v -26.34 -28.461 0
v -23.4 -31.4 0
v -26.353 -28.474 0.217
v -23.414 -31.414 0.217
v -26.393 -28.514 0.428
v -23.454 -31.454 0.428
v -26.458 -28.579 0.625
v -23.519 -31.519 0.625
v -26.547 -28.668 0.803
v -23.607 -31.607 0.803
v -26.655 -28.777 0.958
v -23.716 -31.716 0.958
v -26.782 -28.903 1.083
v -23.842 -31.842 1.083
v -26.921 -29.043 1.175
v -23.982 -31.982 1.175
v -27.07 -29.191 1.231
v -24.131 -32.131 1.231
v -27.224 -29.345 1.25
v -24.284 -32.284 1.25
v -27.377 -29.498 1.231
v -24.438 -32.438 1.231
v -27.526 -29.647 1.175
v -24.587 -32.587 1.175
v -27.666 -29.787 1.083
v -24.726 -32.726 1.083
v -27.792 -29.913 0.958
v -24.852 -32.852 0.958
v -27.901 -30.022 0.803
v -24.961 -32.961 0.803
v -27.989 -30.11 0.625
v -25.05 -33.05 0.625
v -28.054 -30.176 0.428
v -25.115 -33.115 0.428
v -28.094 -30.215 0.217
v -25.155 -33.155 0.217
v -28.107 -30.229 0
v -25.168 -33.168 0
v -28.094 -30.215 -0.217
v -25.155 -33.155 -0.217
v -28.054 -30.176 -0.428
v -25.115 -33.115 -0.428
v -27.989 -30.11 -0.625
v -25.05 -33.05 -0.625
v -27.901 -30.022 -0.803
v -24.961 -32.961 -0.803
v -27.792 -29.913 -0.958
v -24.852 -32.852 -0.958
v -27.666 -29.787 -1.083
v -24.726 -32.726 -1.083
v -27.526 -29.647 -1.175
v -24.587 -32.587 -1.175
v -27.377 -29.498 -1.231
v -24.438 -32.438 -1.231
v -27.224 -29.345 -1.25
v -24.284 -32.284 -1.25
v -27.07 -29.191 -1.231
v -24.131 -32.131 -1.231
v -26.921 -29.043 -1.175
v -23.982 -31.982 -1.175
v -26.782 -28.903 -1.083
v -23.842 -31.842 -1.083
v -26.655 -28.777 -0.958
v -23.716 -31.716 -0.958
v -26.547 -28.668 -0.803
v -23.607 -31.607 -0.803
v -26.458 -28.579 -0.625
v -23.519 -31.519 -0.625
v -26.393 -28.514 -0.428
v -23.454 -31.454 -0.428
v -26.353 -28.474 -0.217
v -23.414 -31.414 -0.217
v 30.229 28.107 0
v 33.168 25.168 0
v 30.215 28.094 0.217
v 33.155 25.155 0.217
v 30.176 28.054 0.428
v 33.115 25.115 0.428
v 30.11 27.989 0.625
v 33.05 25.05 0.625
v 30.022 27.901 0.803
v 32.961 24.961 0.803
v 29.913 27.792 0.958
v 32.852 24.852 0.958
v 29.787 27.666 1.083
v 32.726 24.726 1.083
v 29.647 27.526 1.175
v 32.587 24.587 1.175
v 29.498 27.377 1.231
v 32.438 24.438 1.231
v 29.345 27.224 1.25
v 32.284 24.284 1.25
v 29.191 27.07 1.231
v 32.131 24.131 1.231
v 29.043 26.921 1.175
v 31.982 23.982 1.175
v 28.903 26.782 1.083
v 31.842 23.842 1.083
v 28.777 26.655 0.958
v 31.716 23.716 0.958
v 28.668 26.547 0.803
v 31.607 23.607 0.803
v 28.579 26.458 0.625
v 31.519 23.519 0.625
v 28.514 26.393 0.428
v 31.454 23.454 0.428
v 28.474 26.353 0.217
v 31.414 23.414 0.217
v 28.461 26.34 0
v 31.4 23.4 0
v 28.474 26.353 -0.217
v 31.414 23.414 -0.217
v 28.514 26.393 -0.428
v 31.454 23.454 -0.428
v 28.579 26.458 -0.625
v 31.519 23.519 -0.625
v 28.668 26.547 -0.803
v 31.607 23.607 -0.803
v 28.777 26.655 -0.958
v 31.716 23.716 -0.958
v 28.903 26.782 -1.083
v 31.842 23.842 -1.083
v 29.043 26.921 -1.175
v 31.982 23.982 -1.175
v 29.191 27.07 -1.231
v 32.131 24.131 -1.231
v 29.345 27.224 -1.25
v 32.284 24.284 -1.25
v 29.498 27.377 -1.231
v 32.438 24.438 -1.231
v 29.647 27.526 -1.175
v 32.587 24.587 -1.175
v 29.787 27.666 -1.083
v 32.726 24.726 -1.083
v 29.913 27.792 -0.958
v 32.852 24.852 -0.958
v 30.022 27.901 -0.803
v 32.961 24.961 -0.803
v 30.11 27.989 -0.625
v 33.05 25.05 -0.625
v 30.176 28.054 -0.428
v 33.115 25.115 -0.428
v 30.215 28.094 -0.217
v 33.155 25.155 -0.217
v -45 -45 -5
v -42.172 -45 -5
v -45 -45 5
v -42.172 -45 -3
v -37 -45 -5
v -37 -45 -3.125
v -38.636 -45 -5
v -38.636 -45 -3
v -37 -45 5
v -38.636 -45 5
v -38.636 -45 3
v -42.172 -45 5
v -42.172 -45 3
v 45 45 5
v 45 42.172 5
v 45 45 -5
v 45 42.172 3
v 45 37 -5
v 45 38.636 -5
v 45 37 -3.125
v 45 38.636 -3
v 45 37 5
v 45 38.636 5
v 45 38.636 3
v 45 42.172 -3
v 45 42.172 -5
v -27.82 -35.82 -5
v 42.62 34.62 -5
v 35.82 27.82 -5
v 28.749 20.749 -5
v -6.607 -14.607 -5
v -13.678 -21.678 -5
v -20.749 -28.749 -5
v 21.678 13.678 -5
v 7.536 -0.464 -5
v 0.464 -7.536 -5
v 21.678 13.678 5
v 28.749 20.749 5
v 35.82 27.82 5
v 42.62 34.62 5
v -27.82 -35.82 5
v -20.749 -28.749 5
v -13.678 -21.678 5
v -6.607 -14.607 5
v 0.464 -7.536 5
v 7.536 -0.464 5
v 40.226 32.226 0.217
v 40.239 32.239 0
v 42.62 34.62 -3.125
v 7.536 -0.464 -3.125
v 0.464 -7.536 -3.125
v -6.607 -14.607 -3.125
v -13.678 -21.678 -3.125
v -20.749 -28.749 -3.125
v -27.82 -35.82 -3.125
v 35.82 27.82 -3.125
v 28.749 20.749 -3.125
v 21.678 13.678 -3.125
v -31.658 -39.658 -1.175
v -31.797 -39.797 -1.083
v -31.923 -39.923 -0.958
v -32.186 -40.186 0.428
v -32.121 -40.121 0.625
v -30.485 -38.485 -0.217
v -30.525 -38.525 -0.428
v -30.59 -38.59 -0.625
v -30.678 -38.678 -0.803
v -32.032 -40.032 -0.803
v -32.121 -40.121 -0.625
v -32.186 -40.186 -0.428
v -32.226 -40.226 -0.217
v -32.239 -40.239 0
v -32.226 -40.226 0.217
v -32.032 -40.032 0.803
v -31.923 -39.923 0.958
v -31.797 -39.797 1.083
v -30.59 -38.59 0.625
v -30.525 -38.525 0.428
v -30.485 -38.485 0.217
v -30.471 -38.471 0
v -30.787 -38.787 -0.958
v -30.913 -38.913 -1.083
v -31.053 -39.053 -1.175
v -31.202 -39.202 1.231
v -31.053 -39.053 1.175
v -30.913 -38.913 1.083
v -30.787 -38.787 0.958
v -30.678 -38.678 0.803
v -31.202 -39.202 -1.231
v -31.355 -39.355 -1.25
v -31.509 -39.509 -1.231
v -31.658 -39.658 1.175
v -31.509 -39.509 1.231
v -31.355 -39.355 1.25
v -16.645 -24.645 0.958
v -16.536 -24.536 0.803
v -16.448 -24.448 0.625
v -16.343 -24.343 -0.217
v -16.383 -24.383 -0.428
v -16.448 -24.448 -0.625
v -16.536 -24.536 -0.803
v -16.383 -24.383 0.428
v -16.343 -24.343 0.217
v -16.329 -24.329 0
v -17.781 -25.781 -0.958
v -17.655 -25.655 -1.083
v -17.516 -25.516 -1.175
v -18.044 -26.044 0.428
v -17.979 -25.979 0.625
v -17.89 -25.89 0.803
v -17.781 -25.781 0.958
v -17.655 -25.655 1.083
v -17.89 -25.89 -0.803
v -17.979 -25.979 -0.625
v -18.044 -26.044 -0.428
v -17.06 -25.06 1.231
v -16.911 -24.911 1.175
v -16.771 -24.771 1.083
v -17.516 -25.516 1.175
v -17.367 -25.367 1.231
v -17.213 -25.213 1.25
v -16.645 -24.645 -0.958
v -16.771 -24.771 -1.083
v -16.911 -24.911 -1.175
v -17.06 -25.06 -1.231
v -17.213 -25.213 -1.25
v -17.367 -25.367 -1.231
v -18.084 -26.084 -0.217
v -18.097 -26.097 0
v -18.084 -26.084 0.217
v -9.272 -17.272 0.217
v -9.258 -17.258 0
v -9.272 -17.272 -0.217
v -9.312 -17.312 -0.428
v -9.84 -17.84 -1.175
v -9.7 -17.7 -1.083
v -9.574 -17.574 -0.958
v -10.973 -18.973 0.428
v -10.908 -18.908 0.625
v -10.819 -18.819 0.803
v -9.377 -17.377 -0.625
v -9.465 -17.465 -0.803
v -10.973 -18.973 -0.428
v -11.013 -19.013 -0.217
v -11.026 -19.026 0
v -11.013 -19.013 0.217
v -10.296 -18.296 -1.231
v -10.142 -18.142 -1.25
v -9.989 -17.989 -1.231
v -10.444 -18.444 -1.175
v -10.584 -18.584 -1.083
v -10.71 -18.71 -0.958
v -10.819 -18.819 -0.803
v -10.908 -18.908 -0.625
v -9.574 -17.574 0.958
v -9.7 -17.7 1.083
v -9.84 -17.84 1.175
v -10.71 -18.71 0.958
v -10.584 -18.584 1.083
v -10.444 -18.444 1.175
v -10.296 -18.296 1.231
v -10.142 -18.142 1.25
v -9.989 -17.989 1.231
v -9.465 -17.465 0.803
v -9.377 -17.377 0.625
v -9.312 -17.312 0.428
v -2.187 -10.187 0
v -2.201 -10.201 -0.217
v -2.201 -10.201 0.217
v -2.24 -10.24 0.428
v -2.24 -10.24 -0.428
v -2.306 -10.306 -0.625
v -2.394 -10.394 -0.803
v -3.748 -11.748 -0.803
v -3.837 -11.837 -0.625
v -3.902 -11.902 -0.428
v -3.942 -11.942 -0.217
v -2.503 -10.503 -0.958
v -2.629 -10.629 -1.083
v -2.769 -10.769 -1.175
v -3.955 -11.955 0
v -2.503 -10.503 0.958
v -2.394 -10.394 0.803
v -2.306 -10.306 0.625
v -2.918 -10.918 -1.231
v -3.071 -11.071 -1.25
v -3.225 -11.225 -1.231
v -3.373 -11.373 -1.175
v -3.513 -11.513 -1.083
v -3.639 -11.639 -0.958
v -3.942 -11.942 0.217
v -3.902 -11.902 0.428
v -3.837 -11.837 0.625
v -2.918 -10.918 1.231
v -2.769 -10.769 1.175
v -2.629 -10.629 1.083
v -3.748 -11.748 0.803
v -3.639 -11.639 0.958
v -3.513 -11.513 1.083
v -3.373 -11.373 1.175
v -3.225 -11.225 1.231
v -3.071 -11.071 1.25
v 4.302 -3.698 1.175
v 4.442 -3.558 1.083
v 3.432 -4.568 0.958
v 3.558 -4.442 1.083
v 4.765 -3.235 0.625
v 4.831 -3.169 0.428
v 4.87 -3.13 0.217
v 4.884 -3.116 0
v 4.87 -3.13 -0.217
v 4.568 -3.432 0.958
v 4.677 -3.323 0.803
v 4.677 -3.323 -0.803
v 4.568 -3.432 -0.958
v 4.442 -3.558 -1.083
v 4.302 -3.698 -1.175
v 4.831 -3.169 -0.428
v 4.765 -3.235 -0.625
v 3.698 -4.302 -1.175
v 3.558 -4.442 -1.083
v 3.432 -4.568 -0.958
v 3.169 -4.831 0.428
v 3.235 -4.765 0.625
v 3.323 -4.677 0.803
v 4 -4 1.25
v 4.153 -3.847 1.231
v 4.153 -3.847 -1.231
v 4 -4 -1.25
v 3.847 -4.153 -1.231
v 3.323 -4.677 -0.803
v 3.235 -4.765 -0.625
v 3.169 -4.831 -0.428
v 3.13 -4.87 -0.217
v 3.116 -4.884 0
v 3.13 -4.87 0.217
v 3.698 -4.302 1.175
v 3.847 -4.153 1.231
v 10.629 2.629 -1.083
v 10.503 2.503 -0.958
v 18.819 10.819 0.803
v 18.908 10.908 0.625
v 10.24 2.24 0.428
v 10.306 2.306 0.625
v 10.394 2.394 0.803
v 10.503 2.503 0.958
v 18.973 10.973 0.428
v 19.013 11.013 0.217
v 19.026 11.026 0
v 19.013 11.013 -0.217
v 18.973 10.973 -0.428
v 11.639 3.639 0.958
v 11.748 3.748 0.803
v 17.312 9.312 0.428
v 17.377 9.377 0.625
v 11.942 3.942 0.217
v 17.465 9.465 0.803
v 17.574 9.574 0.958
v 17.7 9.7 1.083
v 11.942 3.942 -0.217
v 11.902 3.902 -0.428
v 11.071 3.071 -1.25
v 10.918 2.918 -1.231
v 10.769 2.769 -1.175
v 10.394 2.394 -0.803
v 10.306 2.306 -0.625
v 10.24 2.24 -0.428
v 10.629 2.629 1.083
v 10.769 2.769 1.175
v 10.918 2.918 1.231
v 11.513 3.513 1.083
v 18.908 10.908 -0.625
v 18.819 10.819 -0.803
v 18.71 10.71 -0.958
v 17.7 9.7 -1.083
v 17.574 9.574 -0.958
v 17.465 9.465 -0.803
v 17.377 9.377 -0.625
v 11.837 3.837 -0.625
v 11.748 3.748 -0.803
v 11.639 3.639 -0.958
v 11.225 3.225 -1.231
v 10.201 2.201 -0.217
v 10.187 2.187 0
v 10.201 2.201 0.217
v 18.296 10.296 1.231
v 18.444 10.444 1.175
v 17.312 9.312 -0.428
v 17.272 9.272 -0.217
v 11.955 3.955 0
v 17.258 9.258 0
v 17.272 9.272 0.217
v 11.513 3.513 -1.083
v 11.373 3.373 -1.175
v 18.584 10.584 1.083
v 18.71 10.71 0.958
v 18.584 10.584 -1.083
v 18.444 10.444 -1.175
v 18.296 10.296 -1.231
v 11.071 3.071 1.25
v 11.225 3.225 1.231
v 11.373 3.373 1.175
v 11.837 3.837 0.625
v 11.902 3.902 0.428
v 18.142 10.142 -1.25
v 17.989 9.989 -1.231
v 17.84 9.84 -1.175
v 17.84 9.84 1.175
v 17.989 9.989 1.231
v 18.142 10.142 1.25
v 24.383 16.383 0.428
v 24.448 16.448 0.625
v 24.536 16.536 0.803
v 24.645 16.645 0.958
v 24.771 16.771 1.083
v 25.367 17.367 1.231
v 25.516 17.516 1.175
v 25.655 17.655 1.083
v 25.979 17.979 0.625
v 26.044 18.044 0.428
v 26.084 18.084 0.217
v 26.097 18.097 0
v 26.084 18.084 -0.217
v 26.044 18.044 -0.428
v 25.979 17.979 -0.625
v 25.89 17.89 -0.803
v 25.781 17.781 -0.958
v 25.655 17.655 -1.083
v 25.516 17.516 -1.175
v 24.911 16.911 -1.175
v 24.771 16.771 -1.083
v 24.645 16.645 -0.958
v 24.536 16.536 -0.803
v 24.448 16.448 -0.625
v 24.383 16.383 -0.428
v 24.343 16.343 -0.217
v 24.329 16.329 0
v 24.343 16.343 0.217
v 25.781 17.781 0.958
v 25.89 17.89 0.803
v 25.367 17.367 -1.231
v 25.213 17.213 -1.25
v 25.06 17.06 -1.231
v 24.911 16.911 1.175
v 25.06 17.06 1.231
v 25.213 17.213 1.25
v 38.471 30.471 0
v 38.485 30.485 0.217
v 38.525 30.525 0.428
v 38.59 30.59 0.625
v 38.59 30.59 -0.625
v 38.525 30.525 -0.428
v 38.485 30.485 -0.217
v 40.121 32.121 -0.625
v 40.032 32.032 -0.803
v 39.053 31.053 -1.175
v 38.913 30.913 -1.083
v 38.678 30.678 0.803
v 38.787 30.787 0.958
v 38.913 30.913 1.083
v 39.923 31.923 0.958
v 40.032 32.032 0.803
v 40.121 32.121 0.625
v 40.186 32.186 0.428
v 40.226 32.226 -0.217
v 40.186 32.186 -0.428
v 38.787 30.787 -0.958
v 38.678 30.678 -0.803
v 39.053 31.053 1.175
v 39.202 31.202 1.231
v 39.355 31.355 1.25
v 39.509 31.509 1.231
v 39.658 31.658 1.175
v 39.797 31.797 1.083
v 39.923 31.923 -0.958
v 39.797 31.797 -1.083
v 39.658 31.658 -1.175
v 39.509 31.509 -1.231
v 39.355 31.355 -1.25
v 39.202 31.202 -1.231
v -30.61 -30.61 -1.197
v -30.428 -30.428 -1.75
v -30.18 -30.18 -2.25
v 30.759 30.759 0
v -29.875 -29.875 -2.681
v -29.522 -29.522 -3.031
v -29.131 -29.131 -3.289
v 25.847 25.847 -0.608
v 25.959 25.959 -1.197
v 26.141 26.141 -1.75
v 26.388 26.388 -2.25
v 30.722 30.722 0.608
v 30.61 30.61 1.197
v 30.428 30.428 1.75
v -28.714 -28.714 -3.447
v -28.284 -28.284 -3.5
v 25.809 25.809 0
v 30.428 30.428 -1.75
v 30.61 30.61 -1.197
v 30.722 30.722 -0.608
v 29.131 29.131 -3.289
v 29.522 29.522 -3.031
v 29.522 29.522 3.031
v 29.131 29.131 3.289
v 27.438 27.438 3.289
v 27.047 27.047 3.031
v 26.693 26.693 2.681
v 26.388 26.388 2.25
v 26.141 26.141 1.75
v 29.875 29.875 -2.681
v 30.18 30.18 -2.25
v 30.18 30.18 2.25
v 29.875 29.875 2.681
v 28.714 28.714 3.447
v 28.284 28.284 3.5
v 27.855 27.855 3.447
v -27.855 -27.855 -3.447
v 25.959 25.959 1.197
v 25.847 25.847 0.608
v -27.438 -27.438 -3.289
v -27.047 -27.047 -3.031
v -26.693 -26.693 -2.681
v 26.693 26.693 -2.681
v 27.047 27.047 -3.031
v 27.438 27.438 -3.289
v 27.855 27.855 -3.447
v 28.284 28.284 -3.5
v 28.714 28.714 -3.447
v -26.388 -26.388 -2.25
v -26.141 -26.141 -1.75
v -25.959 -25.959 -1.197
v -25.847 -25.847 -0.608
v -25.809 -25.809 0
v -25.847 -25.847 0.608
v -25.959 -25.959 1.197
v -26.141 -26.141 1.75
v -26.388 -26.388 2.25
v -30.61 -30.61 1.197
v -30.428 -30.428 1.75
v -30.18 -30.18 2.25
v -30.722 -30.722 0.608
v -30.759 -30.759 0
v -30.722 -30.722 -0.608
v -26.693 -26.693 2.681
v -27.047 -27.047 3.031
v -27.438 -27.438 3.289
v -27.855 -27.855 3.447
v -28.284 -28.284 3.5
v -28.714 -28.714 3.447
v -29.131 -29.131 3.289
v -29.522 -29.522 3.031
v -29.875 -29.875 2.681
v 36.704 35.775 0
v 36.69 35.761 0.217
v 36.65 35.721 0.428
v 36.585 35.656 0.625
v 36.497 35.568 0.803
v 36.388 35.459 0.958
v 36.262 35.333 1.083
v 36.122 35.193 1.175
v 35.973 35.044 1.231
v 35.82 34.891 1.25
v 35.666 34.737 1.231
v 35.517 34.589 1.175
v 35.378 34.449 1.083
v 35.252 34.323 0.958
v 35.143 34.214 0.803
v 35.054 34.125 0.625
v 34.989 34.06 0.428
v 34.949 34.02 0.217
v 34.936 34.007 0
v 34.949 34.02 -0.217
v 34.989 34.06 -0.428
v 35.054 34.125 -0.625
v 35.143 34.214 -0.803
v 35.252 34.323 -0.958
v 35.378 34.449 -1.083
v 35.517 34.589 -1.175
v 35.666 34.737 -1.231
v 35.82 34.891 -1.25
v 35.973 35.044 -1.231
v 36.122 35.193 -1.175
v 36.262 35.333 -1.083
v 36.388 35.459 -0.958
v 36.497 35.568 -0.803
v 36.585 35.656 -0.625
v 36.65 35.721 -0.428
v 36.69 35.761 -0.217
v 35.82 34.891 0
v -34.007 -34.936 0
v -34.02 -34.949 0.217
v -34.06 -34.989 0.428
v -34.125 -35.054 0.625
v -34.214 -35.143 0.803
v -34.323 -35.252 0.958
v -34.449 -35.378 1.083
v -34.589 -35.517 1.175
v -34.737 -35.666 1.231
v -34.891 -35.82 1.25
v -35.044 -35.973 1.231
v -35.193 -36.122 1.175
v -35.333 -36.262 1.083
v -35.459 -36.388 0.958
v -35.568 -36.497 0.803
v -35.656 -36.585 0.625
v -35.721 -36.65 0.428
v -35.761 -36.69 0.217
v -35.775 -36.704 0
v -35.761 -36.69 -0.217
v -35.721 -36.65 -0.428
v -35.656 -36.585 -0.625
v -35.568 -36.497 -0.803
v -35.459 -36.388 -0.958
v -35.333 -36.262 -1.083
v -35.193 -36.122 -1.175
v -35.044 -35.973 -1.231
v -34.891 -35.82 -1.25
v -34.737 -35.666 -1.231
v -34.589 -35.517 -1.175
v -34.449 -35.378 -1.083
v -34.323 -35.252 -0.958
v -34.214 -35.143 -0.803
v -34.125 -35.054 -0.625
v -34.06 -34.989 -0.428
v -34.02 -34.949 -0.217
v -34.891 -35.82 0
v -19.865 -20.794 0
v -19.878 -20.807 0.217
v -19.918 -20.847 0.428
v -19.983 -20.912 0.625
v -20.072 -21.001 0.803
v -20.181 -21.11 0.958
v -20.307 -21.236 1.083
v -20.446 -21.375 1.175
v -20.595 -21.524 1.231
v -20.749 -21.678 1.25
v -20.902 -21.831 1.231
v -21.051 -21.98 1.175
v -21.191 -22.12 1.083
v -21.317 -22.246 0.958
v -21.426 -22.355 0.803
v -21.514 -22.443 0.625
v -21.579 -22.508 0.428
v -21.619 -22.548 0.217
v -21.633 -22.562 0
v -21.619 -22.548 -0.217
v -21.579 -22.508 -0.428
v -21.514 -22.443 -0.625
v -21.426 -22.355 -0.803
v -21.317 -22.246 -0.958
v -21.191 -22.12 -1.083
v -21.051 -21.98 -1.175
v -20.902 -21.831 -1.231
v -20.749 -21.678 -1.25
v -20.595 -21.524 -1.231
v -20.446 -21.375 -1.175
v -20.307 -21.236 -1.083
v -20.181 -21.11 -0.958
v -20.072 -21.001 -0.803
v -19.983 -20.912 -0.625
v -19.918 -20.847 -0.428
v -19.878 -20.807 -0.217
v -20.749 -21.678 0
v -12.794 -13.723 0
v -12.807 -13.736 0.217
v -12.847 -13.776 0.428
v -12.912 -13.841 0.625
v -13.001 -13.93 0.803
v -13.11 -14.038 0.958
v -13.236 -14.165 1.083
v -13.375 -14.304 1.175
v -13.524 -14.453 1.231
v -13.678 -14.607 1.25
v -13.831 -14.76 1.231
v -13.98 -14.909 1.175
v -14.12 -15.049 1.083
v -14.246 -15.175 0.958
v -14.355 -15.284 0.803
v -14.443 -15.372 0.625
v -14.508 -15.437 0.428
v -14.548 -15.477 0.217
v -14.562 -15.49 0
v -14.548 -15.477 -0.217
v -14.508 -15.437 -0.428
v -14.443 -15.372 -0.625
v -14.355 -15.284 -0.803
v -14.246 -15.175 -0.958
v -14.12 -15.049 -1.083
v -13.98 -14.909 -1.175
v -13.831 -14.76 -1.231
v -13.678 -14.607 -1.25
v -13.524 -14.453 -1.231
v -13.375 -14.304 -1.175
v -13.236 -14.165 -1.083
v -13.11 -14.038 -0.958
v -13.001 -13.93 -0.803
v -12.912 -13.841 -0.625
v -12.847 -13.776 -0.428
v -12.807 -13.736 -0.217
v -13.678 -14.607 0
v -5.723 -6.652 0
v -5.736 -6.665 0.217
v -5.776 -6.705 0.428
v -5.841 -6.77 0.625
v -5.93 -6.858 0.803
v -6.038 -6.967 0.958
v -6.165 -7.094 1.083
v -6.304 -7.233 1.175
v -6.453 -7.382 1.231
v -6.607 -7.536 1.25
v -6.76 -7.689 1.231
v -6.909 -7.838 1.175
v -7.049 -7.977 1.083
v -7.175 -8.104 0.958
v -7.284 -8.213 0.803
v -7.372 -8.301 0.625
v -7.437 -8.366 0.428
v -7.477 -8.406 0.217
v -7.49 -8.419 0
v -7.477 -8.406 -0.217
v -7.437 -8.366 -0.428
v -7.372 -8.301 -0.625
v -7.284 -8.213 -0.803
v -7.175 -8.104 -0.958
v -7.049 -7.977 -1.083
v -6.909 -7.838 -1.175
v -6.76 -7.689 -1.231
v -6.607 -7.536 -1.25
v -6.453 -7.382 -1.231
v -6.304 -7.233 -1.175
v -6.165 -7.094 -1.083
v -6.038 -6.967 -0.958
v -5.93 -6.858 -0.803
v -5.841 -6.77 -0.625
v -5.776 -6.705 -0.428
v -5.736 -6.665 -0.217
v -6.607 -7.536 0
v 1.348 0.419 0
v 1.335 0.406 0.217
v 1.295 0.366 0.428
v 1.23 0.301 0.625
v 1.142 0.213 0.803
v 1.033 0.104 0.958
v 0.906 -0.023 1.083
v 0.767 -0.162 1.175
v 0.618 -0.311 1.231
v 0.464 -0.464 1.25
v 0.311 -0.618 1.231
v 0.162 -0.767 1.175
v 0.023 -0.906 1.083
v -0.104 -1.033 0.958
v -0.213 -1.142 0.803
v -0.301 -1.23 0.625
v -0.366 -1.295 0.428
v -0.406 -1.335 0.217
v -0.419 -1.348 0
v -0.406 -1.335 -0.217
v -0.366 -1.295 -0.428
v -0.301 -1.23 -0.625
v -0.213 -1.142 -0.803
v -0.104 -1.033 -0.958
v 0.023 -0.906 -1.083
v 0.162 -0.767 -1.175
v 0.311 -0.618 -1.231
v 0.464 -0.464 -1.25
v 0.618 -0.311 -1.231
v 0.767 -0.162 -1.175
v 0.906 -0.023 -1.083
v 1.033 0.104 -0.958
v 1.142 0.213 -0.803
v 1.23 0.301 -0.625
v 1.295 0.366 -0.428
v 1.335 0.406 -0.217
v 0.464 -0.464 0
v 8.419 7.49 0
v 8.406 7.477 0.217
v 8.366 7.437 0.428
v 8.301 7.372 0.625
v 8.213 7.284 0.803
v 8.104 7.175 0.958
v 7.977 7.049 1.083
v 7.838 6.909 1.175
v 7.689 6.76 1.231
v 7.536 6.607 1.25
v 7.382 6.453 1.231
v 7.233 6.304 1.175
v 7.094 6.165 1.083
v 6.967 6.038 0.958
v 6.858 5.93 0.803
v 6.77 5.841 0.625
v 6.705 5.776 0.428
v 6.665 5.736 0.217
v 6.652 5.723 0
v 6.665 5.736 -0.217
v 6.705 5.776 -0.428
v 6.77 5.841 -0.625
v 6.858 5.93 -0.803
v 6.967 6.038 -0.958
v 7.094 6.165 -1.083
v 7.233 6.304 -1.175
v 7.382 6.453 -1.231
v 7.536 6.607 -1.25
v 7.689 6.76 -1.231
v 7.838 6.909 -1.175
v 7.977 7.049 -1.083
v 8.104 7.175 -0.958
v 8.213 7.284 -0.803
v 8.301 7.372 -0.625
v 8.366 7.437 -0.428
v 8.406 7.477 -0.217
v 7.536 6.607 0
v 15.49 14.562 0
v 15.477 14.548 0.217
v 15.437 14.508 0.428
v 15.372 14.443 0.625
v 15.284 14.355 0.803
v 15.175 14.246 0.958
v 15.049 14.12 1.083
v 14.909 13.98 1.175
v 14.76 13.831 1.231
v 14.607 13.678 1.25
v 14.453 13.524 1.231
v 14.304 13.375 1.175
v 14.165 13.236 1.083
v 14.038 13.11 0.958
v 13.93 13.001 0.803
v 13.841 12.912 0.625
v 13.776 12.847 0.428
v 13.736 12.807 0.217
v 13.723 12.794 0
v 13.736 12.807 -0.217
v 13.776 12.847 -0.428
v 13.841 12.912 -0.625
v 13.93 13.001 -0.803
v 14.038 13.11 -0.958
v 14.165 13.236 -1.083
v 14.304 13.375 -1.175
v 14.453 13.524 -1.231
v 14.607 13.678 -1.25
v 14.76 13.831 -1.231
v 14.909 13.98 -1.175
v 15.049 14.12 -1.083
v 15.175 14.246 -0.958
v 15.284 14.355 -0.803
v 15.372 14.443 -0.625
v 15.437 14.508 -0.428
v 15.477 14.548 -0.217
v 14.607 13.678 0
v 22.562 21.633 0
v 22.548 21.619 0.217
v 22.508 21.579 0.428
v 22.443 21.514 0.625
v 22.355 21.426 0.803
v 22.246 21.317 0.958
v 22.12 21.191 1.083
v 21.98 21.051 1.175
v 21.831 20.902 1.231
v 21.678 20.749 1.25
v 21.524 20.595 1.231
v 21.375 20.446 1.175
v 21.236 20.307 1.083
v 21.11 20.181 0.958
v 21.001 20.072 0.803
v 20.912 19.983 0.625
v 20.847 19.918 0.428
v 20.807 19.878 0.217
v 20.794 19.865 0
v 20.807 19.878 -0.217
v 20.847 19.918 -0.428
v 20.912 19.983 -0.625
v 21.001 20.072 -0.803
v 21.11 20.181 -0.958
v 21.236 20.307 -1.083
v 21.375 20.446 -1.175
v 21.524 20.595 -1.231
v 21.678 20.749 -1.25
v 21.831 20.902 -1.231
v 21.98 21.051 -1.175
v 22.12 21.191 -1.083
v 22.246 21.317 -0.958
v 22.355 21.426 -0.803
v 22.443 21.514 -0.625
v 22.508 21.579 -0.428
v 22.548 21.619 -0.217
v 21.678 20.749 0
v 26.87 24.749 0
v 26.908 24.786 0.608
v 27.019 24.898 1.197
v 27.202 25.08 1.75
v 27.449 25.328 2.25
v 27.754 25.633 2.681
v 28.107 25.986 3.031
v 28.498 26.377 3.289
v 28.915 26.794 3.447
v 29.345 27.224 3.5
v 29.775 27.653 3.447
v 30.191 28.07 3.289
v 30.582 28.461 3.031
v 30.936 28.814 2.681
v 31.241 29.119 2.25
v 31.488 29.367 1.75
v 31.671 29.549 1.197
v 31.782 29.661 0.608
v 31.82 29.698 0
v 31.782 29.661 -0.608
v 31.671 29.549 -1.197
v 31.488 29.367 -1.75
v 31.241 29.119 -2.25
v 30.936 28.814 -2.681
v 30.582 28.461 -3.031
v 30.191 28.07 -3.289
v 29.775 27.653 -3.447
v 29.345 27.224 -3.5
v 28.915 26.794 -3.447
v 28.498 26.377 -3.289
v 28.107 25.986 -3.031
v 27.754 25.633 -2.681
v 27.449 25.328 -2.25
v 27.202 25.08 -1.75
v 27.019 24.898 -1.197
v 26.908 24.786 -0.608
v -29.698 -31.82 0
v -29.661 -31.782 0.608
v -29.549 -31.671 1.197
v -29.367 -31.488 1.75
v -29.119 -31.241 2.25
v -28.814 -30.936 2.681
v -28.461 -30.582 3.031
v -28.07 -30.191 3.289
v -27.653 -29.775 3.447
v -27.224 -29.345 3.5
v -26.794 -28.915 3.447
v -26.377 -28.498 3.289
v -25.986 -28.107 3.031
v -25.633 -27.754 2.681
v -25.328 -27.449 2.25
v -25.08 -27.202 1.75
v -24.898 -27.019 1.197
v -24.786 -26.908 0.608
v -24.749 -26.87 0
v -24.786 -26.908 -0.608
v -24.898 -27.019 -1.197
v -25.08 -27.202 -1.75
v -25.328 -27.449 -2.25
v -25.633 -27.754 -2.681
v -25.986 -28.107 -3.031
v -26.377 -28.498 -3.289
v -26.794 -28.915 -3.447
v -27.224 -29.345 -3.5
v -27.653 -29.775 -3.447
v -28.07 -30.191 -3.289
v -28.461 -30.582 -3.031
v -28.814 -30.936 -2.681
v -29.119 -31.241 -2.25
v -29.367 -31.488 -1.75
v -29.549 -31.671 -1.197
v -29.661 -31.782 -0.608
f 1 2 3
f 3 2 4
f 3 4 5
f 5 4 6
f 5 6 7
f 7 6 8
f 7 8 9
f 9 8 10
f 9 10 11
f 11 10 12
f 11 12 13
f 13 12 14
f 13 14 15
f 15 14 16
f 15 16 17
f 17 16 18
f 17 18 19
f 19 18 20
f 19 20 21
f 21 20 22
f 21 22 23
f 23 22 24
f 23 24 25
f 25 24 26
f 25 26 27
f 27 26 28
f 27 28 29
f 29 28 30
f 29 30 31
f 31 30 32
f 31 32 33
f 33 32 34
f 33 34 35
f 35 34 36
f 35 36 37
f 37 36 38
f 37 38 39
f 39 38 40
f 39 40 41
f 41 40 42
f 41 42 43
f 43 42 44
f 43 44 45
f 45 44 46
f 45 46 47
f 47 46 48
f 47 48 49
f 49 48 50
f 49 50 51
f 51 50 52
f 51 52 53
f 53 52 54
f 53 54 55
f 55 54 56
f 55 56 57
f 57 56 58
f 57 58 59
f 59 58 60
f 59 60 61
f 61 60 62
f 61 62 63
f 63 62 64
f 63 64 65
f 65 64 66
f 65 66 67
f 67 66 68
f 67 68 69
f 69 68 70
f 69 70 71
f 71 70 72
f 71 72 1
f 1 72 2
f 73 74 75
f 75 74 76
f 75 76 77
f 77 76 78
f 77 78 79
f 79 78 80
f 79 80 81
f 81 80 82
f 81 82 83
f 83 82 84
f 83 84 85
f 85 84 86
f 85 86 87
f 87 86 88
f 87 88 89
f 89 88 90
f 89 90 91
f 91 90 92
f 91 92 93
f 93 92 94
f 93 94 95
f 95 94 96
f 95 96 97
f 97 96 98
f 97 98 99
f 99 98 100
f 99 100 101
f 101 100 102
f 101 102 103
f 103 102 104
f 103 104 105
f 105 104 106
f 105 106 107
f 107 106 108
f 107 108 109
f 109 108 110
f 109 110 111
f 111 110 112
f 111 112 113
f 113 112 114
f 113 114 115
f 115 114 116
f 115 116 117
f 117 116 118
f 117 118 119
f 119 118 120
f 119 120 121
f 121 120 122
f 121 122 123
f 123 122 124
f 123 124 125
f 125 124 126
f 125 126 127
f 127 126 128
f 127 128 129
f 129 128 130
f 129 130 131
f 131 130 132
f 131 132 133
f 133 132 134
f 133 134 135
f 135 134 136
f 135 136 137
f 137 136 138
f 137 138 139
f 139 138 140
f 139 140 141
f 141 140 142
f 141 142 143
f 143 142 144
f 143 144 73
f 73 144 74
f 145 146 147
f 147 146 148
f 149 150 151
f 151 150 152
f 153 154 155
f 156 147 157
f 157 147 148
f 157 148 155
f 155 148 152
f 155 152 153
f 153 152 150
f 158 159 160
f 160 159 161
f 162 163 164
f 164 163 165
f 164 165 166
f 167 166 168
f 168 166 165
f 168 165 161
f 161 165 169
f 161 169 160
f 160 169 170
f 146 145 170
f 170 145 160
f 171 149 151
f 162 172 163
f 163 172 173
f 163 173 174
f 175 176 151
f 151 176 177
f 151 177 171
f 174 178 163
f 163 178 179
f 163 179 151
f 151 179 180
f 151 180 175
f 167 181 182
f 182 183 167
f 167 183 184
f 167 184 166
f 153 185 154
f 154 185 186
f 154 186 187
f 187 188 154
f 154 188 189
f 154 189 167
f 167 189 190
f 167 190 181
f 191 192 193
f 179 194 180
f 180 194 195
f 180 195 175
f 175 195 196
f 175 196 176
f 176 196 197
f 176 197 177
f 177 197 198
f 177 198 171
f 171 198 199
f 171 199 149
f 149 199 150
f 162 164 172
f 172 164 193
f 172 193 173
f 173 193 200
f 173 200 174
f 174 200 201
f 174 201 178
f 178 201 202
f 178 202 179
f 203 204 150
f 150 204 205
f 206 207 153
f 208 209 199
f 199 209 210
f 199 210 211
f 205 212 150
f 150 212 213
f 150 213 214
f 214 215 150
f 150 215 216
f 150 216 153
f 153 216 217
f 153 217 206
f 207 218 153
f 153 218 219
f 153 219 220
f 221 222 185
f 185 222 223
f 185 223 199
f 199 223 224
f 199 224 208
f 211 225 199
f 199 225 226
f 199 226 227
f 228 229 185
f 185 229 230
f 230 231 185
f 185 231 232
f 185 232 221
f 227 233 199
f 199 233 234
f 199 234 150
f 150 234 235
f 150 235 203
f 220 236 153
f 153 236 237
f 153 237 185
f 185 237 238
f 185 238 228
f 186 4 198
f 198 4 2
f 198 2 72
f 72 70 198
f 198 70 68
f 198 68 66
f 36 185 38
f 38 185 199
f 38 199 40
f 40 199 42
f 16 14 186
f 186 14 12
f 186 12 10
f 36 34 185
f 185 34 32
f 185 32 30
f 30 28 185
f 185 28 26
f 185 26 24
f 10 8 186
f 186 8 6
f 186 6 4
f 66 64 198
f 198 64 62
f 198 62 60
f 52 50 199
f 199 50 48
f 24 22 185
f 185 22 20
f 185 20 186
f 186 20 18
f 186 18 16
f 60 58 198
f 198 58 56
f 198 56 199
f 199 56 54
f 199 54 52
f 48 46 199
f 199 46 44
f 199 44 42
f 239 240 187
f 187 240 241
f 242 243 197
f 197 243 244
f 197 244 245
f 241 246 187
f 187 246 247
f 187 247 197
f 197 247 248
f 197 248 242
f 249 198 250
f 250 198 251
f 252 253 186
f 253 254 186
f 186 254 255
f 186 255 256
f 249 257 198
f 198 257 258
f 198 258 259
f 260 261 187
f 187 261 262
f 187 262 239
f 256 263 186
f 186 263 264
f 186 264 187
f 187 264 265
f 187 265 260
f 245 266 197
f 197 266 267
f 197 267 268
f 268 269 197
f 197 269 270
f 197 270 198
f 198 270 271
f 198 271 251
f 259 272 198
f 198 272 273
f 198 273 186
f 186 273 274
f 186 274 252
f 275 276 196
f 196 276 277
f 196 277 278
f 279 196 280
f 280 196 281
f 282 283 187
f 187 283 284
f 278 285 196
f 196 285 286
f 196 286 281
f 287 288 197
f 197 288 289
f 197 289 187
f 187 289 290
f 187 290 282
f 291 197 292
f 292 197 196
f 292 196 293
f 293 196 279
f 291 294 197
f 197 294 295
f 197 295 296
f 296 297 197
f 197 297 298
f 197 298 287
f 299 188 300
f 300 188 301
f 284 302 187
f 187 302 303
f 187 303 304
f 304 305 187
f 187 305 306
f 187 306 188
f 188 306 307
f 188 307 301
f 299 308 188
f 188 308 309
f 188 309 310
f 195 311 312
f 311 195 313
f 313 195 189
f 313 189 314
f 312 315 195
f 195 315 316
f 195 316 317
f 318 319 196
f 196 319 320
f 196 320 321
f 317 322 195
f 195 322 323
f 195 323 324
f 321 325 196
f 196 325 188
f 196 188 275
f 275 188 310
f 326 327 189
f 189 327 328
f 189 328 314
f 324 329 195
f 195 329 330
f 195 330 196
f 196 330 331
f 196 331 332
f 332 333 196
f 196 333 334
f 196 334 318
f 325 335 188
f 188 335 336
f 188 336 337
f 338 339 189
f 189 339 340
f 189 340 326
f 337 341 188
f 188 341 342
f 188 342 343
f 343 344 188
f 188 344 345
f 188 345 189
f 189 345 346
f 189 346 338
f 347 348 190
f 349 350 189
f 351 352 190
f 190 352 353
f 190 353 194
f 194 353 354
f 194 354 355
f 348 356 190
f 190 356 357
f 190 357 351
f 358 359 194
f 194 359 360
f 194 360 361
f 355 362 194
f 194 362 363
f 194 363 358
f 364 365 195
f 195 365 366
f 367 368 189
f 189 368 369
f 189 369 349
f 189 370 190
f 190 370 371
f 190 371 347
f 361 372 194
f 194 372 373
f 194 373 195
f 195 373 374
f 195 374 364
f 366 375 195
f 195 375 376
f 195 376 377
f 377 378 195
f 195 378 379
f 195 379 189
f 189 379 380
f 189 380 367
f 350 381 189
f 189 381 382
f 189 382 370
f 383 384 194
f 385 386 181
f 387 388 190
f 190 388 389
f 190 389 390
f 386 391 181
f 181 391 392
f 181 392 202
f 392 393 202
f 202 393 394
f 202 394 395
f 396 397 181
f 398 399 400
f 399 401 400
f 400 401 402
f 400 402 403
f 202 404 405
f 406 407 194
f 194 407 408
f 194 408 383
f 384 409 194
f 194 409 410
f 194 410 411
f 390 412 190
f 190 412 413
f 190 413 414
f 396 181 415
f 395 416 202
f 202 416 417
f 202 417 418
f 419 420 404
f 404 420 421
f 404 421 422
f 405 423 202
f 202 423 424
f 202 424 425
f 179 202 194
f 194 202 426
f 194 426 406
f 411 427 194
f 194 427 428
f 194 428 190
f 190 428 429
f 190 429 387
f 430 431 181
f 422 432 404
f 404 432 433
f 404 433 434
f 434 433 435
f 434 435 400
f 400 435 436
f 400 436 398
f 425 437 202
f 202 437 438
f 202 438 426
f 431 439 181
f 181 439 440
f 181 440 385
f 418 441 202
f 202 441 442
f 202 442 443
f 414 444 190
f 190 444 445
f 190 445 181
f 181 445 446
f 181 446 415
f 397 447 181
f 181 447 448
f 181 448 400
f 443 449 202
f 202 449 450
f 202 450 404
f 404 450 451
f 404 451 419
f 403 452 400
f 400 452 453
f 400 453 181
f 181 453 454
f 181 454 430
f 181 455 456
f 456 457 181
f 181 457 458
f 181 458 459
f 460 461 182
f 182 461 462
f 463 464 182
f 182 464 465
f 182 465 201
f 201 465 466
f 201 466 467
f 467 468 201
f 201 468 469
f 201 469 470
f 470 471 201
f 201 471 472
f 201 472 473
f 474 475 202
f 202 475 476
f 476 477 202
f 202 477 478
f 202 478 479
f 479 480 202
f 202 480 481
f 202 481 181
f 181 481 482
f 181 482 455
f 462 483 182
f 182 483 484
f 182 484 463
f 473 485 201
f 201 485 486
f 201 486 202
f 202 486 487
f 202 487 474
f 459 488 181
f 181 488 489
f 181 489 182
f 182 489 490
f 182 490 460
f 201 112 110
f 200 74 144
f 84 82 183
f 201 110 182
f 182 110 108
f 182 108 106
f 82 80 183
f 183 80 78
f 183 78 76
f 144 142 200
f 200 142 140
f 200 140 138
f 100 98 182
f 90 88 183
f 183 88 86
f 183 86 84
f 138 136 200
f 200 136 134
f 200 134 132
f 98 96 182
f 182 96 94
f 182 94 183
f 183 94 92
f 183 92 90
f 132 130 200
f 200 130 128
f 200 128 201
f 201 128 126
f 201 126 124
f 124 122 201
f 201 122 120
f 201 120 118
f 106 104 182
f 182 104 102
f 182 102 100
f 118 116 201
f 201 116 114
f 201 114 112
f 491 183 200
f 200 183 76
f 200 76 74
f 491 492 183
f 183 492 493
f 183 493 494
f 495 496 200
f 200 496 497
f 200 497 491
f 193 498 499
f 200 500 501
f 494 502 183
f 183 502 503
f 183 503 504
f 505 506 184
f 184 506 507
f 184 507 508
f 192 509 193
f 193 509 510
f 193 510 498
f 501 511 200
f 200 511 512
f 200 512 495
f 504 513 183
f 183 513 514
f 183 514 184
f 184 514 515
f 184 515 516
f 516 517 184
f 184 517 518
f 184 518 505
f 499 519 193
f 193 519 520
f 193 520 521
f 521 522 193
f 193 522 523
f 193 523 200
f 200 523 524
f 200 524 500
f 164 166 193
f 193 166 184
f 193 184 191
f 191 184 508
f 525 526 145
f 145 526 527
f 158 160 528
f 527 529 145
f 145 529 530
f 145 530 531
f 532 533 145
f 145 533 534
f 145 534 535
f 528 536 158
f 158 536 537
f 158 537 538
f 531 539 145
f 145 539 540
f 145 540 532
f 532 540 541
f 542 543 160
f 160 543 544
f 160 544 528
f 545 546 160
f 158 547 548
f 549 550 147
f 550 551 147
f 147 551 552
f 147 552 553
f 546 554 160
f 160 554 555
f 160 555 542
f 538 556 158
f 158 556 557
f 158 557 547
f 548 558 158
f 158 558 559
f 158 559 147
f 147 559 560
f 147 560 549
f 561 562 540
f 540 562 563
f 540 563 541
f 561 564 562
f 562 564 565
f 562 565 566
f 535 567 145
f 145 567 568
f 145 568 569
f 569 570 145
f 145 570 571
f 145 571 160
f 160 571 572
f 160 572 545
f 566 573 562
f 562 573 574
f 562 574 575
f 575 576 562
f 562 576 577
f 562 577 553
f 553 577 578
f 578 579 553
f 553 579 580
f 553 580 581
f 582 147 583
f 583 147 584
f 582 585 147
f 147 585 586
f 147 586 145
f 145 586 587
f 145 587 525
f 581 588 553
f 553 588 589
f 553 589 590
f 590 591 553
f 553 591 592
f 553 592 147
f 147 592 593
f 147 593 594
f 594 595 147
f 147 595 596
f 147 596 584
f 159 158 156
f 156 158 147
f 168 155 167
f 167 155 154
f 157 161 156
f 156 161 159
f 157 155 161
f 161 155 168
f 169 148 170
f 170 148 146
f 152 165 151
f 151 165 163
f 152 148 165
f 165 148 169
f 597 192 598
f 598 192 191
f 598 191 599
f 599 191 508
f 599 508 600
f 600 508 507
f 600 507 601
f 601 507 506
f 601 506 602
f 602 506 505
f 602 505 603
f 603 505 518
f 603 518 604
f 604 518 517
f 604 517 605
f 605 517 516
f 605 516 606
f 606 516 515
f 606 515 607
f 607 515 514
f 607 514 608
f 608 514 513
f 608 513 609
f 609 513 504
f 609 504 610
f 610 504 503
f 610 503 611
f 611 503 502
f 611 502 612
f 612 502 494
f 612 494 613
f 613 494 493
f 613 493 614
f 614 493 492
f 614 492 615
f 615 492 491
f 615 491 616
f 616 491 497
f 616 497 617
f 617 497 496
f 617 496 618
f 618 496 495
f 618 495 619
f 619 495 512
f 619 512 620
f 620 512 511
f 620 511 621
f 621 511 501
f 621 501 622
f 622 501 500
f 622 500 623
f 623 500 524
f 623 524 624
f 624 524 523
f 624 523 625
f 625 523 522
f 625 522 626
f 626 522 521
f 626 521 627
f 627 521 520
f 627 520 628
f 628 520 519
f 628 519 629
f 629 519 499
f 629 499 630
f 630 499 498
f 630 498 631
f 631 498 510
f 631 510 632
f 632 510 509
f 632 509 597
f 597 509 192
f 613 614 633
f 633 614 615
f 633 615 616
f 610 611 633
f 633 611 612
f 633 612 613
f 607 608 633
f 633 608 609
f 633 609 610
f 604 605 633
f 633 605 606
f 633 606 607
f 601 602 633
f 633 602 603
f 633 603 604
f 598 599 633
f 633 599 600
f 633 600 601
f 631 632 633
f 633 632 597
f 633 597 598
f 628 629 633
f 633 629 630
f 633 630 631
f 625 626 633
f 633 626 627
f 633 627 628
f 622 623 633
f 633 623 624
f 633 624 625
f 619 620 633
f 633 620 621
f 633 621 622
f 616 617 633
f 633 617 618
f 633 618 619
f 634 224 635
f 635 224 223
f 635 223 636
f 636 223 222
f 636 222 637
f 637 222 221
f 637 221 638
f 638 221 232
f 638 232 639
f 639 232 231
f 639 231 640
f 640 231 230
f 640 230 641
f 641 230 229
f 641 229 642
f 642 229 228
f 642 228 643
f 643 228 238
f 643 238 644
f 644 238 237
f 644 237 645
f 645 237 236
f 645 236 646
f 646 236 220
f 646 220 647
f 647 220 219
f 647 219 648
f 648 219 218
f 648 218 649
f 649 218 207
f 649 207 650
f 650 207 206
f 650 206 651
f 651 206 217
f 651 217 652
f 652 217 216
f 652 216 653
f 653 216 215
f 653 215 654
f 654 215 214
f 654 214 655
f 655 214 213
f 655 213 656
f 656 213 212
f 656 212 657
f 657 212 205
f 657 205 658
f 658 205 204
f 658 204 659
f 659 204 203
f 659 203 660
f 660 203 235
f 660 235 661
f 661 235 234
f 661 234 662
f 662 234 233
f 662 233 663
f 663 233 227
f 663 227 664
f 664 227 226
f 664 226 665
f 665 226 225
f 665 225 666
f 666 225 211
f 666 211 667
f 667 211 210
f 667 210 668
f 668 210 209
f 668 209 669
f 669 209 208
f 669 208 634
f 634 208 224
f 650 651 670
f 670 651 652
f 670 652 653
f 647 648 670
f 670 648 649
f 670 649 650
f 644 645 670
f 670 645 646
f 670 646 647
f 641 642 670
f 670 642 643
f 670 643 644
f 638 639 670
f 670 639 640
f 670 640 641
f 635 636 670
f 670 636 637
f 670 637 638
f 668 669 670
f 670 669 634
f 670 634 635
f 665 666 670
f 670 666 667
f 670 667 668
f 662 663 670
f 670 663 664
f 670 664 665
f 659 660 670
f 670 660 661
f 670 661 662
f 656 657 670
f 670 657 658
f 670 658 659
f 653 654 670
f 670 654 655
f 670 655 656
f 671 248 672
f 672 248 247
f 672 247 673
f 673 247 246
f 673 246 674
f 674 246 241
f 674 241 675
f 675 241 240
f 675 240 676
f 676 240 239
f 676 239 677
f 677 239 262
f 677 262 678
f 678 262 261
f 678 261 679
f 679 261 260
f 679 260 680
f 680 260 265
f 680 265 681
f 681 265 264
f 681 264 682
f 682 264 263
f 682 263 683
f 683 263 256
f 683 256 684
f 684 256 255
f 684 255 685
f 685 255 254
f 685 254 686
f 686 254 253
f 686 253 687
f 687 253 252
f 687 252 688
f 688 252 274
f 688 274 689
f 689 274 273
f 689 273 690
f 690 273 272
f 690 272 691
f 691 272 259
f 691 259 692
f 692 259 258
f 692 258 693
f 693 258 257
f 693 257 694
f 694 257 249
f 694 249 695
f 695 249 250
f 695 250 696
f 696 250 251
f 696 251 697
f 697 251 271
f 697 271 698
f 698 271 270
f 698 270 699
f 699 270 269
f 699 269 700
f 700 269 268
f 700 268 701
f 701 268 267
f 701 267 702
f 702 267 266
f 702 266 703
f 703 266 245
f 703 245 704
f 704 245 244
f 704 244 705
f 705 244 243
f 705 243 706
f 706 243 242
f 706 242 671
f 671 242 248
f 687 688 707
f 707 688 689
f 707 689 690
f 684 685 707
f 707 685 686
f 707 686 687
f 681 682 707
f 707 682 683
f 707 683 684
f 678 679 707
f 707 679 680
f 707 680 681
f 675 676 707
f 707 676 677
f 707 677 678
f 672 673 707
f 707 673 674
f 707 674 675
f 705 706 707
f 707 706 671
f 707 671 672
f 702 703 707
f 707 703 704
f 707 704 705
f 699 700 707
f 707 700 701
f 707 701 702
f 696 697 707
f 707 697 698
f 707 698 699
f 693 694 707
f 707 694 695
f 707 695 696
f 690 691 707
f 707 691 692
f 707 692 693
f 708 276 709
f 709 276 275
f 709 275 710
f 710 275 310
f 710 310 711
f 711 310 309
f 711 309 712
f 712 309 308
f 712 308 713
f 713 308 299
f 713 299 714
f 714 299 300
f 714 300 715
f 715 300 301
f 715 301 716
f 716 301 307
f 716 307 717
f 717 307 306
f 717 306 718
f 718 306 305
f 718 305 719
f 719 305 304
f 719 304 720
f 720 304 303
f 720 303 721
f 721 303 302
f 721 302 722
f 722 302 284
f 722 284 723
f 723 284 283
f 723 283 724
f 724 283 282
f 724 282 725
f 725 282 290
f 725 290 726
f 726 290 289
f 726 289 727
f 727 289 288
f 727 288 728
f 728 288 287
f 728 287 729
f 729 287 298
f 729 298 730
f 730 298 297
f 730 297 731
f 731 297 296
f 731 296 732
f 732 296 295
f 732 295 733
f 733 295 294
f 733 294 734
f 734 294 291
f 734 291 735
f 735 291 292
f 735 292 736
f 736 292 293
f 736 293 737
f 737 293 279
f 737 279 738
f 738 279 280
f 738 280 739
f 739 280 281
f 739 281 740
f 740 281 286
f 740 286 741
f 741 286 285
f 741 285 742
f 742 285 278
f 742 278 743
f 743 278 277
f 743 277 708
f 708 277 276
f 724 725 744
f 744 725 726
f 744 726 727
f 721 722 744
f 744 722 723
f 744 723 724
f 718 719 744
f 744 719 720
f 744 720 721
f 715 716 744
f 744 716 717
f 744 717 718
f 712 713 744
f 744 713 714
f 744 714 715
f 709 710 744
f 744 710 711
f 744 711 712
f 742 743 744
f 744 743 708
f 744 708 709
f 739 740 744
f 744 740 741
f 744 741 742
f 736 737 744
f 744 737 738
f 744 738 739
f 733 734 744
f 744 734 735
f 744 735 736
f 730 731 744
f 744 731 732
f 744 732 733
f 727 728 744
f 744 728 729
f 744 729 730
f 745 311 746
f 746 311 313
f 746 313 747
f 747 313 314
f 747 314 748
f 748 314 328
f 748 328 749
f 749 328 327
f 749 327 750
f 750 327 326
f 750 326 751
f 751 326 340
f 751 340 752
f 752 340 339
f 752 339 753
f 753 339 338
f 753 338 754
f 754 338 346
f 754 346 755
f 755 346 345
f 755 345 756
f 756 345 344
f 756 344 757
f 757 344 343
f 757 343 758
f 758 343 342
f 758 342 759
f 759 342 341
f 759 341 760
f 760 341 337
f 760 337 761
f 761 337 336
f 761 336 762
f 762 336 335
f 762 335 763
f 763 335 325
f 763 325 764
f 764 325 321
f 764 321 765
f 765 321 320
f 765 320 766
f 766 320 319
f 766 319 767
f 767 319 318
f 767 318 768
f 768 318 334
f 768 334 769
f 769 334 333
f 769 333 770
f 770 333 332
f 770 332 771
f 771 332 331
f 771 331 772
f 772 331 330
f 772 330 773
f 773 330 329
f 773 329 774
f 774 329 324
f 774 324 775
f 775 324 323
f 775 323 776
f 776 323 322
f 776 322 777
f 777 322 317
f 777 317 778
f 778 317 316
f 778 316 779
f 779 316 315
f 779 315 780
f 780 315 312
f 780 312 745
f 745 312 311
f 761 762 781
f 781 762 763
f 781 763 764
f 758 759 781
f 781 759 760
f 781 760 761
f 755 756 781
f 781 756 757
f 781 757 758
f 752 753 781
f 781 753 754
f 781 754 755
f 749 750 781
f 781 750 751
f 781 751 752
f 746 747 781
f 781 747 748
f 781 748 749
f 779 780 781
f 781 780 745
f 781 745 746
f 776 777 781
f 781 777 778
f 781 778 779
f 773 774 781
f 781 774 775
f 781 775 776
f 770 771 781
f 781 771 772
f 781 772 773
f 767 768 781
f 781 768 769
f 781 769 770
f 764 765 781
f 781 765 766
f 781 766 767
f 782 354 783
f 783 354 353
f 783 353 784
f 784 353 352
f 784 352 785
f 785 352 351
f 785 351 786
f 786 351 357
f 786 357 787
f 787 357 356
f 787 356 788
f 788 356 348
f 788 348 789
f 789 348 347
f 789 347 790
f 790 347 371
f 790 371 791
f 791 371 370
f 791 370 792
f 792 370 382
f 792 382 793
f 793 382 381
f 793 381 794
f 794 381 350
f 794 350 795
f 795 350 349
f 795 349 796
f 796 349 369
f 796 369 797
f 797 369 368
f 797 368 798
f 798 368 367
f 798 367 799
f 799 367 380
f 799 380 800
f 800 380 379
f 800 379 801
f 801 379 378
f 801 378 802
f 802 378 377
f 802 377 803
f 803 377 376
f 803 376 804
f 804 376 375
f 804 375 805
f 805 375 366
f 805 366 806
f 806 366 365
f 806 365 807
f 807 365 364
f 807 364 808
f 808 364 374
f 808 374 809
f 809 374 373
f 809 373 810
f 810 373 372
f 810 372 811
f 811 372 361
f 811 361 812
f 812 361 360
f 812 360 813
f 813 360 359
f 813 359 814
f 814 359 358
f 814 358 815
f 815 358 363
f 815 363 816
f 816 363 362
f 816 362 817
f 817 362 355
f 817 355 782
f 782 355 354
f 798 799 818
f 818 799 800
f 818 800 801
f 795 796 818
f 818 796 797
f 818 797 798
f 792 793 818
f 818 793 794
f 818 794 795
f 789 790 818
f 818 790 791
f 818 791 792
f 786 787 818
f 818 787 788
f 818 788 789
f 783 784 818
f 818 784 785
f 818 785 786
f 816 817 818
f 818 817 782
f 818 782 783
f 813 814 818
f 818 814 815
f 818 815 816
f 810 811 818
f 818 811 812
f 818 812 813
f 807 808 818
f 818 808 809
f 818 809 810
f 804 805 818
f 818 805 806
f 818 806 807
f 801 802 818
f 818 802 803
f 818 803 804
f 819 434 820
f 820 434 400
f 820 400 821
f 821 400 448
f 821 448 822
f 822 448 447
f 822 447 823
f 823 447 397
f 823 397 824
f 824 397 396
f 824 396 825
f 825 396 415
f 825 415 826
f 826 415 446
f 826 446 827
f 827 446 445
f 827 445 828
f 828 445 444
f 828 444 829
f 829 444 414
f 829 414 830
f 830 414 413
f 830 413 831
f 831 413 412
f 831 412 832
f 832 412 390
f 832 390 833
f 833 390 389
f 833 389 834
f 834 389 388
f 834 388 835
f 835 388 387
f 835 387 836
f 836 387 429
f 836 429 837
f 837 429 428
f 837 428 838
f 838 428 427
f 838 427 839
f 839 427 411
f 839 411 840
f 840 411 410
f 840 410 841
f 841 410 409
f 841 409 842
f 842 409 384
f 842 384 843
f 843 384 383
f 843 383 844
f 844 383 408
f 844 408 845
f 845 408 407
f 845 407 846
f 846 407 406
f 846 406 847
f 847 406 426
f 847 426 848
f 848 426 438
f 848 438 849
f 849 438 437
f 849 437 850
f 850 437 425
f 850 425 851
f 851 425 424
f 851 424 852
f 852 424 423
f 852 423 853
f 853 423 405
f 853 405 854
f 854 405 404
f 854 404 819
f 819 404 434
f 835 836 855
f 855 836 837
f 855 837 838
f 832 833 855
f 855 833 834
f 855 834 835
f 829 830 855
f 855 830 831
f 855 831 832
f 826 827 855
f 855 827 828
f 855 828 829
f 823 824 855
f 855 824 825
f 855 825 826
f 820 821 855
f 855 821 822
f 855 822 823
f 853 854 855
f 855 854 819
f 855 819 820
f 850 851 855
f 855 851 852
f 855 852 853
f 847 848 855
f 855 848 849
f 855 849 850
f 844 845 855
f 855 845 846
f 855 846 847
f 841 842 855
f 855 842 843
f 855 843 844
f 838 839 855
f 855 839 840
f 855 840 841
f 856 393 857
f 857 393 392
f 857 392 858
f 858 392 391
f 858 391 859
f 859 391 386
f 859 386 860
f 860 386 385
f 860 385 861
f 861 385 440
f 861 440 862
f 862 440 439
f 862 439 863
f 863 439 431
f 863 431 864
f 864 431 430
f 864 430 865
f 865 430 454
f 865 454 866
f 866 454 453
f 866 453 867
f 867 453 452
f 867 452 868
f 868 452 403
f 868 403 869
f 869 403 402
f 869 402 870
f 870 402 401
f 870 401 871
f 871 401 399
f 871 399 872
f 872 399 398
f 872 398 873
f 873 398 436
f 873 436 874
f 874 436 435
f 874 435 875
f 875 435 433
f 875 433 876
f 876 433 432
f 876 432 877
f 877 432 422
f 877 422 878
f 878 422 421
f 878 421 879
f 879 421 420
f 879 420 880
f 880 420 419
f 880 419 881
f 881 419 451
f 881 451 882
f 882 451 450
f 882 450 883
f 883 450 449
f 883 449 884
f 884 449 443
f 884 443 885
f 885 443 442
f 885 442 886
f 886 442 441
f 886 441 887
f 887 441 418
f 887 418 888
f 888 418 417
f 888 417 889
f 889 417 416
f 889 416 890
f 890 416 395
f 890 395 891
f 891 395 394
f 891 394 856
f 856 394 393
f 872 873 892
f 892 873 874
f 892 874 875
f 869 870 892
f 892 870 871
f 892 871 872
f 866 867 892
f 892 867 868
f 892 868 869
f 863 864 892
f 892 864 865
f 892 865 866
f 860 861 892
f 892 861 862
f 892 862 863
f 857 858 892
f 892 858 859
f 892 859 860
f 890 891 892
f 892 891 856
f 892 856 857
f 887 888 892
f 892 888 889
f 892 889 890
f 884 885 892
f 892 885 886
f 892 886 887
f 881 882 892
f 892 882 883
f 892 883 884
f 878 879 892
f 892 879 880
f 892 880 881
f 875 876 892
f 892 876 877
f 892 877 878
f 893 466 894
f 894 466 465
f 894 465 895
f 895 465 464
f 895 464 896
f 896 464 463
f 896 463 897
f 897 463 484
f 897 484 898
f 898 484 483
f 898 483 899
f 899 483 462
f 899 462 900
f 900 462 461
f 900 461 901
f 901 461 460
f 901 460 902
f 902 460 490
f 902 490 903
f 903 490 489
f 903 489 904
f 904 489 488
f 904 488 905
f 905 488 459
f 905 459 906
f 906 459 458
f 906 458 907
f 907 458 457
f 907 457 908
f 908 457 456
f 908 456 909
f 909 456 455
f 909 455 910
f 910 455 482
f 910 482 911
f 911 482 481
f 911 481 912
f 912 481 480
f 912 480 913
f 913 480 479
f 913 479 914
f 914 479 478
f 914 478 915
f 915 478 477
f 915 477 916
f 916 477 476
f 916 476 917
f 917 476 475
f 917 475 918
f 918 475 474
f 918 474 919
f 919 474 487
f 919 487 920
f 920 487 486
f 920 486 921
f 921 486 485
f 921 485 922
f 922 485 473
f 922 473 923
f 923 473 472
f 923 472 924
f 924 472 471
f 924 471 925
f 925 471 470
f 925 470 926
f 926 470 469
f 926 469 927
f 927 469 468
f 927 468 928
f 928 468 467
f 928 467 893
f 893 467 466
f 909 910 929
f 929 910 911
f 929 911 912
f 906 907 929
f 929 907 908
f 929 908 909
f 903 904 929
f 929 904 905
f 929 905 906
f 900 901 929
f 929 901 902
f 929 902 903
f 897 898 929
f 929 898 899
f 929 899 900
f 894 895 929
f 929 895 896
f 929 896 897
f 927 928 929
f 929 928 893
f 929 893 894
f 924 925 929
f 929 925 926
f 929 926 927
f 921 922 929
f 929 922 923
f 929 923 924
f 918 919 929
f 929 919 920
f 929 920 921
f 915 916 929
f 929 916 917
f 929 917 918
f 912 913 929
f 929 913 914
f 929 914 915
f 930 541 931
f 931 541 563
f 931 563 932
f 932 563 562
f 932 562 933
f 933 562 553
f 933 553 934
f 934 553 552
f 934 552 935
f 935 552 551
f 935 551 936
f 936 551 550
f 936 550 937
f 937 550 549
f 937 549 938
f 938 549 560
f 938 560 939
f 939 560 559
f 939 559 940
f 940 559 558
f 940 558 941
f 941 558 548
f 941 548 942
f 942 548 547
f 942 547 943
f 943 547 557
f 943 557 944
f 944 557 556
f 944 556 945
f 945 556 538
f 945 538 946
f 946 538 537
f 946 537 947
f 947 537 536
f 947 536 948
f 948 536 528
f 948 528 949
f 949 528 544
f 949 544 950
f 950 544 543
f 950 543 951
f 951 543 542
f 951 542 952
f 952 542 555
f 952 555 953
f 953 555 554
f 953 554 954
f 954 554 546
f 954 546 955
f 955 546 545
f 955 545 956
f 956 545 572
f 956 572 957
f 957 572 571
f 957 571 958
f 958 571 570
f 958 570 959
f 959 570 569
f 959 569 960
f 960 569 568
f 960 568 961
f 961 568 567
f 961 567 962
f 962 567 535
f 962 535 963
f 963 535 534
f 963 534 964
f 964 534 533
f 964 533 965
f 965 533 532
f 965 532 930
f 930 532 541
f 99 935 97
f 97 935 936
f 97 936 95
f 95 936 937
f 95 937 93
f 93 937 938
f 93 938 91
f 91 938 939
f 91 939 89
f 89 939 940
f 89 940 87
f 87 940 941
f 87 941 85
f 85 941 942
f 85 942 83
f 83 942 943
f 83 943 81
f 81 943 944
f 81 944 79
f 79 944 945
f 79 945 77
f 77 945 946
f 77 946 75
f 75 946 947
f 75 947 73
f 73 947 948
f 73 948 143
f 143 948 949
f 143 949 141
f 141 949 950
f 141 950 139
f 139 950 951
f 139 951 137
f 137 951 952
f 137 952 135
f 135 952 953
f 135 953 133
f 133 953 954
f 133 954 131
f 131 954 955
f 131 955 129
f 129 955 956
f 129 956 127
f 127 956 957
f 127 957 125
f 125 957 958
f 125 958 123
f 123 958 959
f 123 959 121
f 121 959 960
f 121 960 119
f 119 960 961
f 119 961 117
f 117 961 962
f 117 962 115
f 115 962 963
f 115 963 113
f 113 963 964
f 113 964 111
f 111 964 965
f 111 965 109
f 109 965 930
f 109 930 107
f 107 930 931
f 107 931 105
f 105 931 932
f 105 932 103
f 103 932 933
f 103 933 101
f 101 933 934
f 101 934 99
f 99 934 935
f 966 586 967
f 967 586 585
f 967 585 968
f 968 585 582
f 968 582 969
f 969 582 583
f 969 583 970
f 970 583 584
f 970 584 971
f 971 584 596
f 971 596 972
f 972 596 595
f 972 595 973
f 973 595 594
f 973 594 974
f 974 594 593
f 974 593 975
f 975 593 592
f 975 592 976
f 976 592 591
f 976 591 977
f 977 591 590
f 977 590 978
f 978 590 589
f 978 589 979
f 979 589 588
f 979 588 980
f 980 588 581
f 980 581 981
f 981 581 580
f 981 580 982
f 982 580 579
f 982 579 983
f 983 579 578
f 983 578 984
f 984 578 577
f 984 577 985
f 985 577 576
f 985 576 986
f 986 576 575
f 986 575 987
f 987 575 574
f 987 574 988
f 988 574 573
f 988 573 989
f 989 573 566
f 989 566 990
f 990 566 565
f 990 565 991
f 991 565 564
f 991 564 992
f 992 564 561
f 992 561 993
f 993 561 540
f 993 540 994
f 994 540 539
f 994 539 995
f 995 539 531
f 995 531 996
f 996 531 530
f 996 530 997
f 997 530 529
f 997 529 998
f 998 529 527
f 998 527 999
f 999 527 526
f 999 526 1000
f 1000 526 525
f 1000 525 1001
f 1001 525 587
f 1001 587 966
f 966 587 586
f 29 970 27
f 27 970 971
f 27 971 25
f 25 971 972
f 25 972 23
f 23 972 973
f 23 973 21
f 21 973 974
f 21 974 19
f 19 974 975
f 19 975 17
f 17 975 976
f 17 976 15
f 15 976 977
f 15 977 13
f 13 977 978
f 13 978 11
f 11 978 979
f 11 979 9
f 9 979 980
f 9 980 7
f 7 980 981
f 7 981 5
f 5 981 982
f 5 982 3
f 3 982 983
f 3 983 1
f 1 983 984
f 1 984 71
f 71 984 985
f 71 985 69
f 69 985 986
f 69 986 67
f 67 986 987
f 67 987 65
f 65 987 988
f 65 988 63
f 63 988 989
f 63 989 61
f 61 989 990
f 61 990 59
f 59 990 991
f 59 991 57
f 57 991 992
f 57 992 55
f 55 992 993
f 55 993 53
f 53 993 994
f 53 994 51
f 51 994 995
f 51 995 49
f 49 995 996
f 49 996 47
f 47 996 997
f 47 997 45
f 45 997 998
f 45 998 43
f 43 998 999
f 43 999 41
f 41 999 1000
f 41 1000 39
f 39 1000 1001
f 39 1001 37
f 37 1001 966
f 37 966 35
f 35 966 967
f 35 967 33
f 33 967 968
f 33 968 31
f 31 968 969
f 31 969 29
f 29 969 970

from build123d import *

# Parameters (mm, degrees)
MAIN_DEPTH         = 5
WINDOWSLOT1_DEPTH  = 2
SKETCH6_R          = 1.25
CUT_EXTRUDE2_DEPTH = 5
LPATTERN1_COUNT    = 11
LPATTERN1_PITCH    = 10
SKETCH7_R          = 3.5
CUT_EXTRUDE4_DEPTH = 1.5


with BuildPart() as part:
    # Sketch1 → Main (new body, symmetric)
    with BuildSketch(Plane.XY):
        Polygon((-45, -45), (45, 45), (45, 37), (-37, -45), align=None)
    extrude(amount=MAIN_DEPTH, both=True)

    # Sketch4 → WindowSlot1 (cut)
    with BuildSketch(Plane.XY.offset(5)):
        Polygon((45, 42.171572875), (-42.171572875, -45), (-38.636038969, -45), (45, 38.636038969), align=None)
    windowslot1 = extrude(amount=-WINDOWSLOT1_DEPTH, mode=Mode.SUBTRACT)

    # Mirror1: WindowSlot1 across plane
    add(windowslot1.mirror(Plane.XY), mode=Mode.SUBTRACT)

    # Sketch6 → Cut-Extrude2 (cut)
    with BuildSketch(Plane(origin=(4, -4, 0), x_dir=(0, 0, 1), z_dir=(-0.707106781, 0.707106781, 0))):
        with Locations((0, 50)):
            Circle(SKETCH6_R)
    cut_extrude2 = extrude(amount=CUT_EXTRUDE2_DEPTH, mode=Mode.SUBTRACT)

    # LPattern1: Cut-Extrude2 ×11
    with Locations(*[Vector(-0.707106781, -0.707106781, 0) * (i * LPATTERN1_PITCH) for i in range(1, LPATTERN1_COUNT)]):
        add(cut_extrude2, mode=Mode.SUBTRACT)

    # Sketch7 → Cut-Extrude4 (cut)
    with BuildSketch(Plane(origin=(0, 0, 0), x_dir=(0, 0, 1), z_dir=(-0.707106781, 0.707106781, 0))):
        with Locations((0, 40)):
            Circle(SKETCH7_R)
        with Locations((0, -40)):
            Circle(SKETCH7_R)
    extrude(amount=-CUT_EXTRUDE4_DEPTH, mode=Mode.SUBTRACT)


solid = part.part
